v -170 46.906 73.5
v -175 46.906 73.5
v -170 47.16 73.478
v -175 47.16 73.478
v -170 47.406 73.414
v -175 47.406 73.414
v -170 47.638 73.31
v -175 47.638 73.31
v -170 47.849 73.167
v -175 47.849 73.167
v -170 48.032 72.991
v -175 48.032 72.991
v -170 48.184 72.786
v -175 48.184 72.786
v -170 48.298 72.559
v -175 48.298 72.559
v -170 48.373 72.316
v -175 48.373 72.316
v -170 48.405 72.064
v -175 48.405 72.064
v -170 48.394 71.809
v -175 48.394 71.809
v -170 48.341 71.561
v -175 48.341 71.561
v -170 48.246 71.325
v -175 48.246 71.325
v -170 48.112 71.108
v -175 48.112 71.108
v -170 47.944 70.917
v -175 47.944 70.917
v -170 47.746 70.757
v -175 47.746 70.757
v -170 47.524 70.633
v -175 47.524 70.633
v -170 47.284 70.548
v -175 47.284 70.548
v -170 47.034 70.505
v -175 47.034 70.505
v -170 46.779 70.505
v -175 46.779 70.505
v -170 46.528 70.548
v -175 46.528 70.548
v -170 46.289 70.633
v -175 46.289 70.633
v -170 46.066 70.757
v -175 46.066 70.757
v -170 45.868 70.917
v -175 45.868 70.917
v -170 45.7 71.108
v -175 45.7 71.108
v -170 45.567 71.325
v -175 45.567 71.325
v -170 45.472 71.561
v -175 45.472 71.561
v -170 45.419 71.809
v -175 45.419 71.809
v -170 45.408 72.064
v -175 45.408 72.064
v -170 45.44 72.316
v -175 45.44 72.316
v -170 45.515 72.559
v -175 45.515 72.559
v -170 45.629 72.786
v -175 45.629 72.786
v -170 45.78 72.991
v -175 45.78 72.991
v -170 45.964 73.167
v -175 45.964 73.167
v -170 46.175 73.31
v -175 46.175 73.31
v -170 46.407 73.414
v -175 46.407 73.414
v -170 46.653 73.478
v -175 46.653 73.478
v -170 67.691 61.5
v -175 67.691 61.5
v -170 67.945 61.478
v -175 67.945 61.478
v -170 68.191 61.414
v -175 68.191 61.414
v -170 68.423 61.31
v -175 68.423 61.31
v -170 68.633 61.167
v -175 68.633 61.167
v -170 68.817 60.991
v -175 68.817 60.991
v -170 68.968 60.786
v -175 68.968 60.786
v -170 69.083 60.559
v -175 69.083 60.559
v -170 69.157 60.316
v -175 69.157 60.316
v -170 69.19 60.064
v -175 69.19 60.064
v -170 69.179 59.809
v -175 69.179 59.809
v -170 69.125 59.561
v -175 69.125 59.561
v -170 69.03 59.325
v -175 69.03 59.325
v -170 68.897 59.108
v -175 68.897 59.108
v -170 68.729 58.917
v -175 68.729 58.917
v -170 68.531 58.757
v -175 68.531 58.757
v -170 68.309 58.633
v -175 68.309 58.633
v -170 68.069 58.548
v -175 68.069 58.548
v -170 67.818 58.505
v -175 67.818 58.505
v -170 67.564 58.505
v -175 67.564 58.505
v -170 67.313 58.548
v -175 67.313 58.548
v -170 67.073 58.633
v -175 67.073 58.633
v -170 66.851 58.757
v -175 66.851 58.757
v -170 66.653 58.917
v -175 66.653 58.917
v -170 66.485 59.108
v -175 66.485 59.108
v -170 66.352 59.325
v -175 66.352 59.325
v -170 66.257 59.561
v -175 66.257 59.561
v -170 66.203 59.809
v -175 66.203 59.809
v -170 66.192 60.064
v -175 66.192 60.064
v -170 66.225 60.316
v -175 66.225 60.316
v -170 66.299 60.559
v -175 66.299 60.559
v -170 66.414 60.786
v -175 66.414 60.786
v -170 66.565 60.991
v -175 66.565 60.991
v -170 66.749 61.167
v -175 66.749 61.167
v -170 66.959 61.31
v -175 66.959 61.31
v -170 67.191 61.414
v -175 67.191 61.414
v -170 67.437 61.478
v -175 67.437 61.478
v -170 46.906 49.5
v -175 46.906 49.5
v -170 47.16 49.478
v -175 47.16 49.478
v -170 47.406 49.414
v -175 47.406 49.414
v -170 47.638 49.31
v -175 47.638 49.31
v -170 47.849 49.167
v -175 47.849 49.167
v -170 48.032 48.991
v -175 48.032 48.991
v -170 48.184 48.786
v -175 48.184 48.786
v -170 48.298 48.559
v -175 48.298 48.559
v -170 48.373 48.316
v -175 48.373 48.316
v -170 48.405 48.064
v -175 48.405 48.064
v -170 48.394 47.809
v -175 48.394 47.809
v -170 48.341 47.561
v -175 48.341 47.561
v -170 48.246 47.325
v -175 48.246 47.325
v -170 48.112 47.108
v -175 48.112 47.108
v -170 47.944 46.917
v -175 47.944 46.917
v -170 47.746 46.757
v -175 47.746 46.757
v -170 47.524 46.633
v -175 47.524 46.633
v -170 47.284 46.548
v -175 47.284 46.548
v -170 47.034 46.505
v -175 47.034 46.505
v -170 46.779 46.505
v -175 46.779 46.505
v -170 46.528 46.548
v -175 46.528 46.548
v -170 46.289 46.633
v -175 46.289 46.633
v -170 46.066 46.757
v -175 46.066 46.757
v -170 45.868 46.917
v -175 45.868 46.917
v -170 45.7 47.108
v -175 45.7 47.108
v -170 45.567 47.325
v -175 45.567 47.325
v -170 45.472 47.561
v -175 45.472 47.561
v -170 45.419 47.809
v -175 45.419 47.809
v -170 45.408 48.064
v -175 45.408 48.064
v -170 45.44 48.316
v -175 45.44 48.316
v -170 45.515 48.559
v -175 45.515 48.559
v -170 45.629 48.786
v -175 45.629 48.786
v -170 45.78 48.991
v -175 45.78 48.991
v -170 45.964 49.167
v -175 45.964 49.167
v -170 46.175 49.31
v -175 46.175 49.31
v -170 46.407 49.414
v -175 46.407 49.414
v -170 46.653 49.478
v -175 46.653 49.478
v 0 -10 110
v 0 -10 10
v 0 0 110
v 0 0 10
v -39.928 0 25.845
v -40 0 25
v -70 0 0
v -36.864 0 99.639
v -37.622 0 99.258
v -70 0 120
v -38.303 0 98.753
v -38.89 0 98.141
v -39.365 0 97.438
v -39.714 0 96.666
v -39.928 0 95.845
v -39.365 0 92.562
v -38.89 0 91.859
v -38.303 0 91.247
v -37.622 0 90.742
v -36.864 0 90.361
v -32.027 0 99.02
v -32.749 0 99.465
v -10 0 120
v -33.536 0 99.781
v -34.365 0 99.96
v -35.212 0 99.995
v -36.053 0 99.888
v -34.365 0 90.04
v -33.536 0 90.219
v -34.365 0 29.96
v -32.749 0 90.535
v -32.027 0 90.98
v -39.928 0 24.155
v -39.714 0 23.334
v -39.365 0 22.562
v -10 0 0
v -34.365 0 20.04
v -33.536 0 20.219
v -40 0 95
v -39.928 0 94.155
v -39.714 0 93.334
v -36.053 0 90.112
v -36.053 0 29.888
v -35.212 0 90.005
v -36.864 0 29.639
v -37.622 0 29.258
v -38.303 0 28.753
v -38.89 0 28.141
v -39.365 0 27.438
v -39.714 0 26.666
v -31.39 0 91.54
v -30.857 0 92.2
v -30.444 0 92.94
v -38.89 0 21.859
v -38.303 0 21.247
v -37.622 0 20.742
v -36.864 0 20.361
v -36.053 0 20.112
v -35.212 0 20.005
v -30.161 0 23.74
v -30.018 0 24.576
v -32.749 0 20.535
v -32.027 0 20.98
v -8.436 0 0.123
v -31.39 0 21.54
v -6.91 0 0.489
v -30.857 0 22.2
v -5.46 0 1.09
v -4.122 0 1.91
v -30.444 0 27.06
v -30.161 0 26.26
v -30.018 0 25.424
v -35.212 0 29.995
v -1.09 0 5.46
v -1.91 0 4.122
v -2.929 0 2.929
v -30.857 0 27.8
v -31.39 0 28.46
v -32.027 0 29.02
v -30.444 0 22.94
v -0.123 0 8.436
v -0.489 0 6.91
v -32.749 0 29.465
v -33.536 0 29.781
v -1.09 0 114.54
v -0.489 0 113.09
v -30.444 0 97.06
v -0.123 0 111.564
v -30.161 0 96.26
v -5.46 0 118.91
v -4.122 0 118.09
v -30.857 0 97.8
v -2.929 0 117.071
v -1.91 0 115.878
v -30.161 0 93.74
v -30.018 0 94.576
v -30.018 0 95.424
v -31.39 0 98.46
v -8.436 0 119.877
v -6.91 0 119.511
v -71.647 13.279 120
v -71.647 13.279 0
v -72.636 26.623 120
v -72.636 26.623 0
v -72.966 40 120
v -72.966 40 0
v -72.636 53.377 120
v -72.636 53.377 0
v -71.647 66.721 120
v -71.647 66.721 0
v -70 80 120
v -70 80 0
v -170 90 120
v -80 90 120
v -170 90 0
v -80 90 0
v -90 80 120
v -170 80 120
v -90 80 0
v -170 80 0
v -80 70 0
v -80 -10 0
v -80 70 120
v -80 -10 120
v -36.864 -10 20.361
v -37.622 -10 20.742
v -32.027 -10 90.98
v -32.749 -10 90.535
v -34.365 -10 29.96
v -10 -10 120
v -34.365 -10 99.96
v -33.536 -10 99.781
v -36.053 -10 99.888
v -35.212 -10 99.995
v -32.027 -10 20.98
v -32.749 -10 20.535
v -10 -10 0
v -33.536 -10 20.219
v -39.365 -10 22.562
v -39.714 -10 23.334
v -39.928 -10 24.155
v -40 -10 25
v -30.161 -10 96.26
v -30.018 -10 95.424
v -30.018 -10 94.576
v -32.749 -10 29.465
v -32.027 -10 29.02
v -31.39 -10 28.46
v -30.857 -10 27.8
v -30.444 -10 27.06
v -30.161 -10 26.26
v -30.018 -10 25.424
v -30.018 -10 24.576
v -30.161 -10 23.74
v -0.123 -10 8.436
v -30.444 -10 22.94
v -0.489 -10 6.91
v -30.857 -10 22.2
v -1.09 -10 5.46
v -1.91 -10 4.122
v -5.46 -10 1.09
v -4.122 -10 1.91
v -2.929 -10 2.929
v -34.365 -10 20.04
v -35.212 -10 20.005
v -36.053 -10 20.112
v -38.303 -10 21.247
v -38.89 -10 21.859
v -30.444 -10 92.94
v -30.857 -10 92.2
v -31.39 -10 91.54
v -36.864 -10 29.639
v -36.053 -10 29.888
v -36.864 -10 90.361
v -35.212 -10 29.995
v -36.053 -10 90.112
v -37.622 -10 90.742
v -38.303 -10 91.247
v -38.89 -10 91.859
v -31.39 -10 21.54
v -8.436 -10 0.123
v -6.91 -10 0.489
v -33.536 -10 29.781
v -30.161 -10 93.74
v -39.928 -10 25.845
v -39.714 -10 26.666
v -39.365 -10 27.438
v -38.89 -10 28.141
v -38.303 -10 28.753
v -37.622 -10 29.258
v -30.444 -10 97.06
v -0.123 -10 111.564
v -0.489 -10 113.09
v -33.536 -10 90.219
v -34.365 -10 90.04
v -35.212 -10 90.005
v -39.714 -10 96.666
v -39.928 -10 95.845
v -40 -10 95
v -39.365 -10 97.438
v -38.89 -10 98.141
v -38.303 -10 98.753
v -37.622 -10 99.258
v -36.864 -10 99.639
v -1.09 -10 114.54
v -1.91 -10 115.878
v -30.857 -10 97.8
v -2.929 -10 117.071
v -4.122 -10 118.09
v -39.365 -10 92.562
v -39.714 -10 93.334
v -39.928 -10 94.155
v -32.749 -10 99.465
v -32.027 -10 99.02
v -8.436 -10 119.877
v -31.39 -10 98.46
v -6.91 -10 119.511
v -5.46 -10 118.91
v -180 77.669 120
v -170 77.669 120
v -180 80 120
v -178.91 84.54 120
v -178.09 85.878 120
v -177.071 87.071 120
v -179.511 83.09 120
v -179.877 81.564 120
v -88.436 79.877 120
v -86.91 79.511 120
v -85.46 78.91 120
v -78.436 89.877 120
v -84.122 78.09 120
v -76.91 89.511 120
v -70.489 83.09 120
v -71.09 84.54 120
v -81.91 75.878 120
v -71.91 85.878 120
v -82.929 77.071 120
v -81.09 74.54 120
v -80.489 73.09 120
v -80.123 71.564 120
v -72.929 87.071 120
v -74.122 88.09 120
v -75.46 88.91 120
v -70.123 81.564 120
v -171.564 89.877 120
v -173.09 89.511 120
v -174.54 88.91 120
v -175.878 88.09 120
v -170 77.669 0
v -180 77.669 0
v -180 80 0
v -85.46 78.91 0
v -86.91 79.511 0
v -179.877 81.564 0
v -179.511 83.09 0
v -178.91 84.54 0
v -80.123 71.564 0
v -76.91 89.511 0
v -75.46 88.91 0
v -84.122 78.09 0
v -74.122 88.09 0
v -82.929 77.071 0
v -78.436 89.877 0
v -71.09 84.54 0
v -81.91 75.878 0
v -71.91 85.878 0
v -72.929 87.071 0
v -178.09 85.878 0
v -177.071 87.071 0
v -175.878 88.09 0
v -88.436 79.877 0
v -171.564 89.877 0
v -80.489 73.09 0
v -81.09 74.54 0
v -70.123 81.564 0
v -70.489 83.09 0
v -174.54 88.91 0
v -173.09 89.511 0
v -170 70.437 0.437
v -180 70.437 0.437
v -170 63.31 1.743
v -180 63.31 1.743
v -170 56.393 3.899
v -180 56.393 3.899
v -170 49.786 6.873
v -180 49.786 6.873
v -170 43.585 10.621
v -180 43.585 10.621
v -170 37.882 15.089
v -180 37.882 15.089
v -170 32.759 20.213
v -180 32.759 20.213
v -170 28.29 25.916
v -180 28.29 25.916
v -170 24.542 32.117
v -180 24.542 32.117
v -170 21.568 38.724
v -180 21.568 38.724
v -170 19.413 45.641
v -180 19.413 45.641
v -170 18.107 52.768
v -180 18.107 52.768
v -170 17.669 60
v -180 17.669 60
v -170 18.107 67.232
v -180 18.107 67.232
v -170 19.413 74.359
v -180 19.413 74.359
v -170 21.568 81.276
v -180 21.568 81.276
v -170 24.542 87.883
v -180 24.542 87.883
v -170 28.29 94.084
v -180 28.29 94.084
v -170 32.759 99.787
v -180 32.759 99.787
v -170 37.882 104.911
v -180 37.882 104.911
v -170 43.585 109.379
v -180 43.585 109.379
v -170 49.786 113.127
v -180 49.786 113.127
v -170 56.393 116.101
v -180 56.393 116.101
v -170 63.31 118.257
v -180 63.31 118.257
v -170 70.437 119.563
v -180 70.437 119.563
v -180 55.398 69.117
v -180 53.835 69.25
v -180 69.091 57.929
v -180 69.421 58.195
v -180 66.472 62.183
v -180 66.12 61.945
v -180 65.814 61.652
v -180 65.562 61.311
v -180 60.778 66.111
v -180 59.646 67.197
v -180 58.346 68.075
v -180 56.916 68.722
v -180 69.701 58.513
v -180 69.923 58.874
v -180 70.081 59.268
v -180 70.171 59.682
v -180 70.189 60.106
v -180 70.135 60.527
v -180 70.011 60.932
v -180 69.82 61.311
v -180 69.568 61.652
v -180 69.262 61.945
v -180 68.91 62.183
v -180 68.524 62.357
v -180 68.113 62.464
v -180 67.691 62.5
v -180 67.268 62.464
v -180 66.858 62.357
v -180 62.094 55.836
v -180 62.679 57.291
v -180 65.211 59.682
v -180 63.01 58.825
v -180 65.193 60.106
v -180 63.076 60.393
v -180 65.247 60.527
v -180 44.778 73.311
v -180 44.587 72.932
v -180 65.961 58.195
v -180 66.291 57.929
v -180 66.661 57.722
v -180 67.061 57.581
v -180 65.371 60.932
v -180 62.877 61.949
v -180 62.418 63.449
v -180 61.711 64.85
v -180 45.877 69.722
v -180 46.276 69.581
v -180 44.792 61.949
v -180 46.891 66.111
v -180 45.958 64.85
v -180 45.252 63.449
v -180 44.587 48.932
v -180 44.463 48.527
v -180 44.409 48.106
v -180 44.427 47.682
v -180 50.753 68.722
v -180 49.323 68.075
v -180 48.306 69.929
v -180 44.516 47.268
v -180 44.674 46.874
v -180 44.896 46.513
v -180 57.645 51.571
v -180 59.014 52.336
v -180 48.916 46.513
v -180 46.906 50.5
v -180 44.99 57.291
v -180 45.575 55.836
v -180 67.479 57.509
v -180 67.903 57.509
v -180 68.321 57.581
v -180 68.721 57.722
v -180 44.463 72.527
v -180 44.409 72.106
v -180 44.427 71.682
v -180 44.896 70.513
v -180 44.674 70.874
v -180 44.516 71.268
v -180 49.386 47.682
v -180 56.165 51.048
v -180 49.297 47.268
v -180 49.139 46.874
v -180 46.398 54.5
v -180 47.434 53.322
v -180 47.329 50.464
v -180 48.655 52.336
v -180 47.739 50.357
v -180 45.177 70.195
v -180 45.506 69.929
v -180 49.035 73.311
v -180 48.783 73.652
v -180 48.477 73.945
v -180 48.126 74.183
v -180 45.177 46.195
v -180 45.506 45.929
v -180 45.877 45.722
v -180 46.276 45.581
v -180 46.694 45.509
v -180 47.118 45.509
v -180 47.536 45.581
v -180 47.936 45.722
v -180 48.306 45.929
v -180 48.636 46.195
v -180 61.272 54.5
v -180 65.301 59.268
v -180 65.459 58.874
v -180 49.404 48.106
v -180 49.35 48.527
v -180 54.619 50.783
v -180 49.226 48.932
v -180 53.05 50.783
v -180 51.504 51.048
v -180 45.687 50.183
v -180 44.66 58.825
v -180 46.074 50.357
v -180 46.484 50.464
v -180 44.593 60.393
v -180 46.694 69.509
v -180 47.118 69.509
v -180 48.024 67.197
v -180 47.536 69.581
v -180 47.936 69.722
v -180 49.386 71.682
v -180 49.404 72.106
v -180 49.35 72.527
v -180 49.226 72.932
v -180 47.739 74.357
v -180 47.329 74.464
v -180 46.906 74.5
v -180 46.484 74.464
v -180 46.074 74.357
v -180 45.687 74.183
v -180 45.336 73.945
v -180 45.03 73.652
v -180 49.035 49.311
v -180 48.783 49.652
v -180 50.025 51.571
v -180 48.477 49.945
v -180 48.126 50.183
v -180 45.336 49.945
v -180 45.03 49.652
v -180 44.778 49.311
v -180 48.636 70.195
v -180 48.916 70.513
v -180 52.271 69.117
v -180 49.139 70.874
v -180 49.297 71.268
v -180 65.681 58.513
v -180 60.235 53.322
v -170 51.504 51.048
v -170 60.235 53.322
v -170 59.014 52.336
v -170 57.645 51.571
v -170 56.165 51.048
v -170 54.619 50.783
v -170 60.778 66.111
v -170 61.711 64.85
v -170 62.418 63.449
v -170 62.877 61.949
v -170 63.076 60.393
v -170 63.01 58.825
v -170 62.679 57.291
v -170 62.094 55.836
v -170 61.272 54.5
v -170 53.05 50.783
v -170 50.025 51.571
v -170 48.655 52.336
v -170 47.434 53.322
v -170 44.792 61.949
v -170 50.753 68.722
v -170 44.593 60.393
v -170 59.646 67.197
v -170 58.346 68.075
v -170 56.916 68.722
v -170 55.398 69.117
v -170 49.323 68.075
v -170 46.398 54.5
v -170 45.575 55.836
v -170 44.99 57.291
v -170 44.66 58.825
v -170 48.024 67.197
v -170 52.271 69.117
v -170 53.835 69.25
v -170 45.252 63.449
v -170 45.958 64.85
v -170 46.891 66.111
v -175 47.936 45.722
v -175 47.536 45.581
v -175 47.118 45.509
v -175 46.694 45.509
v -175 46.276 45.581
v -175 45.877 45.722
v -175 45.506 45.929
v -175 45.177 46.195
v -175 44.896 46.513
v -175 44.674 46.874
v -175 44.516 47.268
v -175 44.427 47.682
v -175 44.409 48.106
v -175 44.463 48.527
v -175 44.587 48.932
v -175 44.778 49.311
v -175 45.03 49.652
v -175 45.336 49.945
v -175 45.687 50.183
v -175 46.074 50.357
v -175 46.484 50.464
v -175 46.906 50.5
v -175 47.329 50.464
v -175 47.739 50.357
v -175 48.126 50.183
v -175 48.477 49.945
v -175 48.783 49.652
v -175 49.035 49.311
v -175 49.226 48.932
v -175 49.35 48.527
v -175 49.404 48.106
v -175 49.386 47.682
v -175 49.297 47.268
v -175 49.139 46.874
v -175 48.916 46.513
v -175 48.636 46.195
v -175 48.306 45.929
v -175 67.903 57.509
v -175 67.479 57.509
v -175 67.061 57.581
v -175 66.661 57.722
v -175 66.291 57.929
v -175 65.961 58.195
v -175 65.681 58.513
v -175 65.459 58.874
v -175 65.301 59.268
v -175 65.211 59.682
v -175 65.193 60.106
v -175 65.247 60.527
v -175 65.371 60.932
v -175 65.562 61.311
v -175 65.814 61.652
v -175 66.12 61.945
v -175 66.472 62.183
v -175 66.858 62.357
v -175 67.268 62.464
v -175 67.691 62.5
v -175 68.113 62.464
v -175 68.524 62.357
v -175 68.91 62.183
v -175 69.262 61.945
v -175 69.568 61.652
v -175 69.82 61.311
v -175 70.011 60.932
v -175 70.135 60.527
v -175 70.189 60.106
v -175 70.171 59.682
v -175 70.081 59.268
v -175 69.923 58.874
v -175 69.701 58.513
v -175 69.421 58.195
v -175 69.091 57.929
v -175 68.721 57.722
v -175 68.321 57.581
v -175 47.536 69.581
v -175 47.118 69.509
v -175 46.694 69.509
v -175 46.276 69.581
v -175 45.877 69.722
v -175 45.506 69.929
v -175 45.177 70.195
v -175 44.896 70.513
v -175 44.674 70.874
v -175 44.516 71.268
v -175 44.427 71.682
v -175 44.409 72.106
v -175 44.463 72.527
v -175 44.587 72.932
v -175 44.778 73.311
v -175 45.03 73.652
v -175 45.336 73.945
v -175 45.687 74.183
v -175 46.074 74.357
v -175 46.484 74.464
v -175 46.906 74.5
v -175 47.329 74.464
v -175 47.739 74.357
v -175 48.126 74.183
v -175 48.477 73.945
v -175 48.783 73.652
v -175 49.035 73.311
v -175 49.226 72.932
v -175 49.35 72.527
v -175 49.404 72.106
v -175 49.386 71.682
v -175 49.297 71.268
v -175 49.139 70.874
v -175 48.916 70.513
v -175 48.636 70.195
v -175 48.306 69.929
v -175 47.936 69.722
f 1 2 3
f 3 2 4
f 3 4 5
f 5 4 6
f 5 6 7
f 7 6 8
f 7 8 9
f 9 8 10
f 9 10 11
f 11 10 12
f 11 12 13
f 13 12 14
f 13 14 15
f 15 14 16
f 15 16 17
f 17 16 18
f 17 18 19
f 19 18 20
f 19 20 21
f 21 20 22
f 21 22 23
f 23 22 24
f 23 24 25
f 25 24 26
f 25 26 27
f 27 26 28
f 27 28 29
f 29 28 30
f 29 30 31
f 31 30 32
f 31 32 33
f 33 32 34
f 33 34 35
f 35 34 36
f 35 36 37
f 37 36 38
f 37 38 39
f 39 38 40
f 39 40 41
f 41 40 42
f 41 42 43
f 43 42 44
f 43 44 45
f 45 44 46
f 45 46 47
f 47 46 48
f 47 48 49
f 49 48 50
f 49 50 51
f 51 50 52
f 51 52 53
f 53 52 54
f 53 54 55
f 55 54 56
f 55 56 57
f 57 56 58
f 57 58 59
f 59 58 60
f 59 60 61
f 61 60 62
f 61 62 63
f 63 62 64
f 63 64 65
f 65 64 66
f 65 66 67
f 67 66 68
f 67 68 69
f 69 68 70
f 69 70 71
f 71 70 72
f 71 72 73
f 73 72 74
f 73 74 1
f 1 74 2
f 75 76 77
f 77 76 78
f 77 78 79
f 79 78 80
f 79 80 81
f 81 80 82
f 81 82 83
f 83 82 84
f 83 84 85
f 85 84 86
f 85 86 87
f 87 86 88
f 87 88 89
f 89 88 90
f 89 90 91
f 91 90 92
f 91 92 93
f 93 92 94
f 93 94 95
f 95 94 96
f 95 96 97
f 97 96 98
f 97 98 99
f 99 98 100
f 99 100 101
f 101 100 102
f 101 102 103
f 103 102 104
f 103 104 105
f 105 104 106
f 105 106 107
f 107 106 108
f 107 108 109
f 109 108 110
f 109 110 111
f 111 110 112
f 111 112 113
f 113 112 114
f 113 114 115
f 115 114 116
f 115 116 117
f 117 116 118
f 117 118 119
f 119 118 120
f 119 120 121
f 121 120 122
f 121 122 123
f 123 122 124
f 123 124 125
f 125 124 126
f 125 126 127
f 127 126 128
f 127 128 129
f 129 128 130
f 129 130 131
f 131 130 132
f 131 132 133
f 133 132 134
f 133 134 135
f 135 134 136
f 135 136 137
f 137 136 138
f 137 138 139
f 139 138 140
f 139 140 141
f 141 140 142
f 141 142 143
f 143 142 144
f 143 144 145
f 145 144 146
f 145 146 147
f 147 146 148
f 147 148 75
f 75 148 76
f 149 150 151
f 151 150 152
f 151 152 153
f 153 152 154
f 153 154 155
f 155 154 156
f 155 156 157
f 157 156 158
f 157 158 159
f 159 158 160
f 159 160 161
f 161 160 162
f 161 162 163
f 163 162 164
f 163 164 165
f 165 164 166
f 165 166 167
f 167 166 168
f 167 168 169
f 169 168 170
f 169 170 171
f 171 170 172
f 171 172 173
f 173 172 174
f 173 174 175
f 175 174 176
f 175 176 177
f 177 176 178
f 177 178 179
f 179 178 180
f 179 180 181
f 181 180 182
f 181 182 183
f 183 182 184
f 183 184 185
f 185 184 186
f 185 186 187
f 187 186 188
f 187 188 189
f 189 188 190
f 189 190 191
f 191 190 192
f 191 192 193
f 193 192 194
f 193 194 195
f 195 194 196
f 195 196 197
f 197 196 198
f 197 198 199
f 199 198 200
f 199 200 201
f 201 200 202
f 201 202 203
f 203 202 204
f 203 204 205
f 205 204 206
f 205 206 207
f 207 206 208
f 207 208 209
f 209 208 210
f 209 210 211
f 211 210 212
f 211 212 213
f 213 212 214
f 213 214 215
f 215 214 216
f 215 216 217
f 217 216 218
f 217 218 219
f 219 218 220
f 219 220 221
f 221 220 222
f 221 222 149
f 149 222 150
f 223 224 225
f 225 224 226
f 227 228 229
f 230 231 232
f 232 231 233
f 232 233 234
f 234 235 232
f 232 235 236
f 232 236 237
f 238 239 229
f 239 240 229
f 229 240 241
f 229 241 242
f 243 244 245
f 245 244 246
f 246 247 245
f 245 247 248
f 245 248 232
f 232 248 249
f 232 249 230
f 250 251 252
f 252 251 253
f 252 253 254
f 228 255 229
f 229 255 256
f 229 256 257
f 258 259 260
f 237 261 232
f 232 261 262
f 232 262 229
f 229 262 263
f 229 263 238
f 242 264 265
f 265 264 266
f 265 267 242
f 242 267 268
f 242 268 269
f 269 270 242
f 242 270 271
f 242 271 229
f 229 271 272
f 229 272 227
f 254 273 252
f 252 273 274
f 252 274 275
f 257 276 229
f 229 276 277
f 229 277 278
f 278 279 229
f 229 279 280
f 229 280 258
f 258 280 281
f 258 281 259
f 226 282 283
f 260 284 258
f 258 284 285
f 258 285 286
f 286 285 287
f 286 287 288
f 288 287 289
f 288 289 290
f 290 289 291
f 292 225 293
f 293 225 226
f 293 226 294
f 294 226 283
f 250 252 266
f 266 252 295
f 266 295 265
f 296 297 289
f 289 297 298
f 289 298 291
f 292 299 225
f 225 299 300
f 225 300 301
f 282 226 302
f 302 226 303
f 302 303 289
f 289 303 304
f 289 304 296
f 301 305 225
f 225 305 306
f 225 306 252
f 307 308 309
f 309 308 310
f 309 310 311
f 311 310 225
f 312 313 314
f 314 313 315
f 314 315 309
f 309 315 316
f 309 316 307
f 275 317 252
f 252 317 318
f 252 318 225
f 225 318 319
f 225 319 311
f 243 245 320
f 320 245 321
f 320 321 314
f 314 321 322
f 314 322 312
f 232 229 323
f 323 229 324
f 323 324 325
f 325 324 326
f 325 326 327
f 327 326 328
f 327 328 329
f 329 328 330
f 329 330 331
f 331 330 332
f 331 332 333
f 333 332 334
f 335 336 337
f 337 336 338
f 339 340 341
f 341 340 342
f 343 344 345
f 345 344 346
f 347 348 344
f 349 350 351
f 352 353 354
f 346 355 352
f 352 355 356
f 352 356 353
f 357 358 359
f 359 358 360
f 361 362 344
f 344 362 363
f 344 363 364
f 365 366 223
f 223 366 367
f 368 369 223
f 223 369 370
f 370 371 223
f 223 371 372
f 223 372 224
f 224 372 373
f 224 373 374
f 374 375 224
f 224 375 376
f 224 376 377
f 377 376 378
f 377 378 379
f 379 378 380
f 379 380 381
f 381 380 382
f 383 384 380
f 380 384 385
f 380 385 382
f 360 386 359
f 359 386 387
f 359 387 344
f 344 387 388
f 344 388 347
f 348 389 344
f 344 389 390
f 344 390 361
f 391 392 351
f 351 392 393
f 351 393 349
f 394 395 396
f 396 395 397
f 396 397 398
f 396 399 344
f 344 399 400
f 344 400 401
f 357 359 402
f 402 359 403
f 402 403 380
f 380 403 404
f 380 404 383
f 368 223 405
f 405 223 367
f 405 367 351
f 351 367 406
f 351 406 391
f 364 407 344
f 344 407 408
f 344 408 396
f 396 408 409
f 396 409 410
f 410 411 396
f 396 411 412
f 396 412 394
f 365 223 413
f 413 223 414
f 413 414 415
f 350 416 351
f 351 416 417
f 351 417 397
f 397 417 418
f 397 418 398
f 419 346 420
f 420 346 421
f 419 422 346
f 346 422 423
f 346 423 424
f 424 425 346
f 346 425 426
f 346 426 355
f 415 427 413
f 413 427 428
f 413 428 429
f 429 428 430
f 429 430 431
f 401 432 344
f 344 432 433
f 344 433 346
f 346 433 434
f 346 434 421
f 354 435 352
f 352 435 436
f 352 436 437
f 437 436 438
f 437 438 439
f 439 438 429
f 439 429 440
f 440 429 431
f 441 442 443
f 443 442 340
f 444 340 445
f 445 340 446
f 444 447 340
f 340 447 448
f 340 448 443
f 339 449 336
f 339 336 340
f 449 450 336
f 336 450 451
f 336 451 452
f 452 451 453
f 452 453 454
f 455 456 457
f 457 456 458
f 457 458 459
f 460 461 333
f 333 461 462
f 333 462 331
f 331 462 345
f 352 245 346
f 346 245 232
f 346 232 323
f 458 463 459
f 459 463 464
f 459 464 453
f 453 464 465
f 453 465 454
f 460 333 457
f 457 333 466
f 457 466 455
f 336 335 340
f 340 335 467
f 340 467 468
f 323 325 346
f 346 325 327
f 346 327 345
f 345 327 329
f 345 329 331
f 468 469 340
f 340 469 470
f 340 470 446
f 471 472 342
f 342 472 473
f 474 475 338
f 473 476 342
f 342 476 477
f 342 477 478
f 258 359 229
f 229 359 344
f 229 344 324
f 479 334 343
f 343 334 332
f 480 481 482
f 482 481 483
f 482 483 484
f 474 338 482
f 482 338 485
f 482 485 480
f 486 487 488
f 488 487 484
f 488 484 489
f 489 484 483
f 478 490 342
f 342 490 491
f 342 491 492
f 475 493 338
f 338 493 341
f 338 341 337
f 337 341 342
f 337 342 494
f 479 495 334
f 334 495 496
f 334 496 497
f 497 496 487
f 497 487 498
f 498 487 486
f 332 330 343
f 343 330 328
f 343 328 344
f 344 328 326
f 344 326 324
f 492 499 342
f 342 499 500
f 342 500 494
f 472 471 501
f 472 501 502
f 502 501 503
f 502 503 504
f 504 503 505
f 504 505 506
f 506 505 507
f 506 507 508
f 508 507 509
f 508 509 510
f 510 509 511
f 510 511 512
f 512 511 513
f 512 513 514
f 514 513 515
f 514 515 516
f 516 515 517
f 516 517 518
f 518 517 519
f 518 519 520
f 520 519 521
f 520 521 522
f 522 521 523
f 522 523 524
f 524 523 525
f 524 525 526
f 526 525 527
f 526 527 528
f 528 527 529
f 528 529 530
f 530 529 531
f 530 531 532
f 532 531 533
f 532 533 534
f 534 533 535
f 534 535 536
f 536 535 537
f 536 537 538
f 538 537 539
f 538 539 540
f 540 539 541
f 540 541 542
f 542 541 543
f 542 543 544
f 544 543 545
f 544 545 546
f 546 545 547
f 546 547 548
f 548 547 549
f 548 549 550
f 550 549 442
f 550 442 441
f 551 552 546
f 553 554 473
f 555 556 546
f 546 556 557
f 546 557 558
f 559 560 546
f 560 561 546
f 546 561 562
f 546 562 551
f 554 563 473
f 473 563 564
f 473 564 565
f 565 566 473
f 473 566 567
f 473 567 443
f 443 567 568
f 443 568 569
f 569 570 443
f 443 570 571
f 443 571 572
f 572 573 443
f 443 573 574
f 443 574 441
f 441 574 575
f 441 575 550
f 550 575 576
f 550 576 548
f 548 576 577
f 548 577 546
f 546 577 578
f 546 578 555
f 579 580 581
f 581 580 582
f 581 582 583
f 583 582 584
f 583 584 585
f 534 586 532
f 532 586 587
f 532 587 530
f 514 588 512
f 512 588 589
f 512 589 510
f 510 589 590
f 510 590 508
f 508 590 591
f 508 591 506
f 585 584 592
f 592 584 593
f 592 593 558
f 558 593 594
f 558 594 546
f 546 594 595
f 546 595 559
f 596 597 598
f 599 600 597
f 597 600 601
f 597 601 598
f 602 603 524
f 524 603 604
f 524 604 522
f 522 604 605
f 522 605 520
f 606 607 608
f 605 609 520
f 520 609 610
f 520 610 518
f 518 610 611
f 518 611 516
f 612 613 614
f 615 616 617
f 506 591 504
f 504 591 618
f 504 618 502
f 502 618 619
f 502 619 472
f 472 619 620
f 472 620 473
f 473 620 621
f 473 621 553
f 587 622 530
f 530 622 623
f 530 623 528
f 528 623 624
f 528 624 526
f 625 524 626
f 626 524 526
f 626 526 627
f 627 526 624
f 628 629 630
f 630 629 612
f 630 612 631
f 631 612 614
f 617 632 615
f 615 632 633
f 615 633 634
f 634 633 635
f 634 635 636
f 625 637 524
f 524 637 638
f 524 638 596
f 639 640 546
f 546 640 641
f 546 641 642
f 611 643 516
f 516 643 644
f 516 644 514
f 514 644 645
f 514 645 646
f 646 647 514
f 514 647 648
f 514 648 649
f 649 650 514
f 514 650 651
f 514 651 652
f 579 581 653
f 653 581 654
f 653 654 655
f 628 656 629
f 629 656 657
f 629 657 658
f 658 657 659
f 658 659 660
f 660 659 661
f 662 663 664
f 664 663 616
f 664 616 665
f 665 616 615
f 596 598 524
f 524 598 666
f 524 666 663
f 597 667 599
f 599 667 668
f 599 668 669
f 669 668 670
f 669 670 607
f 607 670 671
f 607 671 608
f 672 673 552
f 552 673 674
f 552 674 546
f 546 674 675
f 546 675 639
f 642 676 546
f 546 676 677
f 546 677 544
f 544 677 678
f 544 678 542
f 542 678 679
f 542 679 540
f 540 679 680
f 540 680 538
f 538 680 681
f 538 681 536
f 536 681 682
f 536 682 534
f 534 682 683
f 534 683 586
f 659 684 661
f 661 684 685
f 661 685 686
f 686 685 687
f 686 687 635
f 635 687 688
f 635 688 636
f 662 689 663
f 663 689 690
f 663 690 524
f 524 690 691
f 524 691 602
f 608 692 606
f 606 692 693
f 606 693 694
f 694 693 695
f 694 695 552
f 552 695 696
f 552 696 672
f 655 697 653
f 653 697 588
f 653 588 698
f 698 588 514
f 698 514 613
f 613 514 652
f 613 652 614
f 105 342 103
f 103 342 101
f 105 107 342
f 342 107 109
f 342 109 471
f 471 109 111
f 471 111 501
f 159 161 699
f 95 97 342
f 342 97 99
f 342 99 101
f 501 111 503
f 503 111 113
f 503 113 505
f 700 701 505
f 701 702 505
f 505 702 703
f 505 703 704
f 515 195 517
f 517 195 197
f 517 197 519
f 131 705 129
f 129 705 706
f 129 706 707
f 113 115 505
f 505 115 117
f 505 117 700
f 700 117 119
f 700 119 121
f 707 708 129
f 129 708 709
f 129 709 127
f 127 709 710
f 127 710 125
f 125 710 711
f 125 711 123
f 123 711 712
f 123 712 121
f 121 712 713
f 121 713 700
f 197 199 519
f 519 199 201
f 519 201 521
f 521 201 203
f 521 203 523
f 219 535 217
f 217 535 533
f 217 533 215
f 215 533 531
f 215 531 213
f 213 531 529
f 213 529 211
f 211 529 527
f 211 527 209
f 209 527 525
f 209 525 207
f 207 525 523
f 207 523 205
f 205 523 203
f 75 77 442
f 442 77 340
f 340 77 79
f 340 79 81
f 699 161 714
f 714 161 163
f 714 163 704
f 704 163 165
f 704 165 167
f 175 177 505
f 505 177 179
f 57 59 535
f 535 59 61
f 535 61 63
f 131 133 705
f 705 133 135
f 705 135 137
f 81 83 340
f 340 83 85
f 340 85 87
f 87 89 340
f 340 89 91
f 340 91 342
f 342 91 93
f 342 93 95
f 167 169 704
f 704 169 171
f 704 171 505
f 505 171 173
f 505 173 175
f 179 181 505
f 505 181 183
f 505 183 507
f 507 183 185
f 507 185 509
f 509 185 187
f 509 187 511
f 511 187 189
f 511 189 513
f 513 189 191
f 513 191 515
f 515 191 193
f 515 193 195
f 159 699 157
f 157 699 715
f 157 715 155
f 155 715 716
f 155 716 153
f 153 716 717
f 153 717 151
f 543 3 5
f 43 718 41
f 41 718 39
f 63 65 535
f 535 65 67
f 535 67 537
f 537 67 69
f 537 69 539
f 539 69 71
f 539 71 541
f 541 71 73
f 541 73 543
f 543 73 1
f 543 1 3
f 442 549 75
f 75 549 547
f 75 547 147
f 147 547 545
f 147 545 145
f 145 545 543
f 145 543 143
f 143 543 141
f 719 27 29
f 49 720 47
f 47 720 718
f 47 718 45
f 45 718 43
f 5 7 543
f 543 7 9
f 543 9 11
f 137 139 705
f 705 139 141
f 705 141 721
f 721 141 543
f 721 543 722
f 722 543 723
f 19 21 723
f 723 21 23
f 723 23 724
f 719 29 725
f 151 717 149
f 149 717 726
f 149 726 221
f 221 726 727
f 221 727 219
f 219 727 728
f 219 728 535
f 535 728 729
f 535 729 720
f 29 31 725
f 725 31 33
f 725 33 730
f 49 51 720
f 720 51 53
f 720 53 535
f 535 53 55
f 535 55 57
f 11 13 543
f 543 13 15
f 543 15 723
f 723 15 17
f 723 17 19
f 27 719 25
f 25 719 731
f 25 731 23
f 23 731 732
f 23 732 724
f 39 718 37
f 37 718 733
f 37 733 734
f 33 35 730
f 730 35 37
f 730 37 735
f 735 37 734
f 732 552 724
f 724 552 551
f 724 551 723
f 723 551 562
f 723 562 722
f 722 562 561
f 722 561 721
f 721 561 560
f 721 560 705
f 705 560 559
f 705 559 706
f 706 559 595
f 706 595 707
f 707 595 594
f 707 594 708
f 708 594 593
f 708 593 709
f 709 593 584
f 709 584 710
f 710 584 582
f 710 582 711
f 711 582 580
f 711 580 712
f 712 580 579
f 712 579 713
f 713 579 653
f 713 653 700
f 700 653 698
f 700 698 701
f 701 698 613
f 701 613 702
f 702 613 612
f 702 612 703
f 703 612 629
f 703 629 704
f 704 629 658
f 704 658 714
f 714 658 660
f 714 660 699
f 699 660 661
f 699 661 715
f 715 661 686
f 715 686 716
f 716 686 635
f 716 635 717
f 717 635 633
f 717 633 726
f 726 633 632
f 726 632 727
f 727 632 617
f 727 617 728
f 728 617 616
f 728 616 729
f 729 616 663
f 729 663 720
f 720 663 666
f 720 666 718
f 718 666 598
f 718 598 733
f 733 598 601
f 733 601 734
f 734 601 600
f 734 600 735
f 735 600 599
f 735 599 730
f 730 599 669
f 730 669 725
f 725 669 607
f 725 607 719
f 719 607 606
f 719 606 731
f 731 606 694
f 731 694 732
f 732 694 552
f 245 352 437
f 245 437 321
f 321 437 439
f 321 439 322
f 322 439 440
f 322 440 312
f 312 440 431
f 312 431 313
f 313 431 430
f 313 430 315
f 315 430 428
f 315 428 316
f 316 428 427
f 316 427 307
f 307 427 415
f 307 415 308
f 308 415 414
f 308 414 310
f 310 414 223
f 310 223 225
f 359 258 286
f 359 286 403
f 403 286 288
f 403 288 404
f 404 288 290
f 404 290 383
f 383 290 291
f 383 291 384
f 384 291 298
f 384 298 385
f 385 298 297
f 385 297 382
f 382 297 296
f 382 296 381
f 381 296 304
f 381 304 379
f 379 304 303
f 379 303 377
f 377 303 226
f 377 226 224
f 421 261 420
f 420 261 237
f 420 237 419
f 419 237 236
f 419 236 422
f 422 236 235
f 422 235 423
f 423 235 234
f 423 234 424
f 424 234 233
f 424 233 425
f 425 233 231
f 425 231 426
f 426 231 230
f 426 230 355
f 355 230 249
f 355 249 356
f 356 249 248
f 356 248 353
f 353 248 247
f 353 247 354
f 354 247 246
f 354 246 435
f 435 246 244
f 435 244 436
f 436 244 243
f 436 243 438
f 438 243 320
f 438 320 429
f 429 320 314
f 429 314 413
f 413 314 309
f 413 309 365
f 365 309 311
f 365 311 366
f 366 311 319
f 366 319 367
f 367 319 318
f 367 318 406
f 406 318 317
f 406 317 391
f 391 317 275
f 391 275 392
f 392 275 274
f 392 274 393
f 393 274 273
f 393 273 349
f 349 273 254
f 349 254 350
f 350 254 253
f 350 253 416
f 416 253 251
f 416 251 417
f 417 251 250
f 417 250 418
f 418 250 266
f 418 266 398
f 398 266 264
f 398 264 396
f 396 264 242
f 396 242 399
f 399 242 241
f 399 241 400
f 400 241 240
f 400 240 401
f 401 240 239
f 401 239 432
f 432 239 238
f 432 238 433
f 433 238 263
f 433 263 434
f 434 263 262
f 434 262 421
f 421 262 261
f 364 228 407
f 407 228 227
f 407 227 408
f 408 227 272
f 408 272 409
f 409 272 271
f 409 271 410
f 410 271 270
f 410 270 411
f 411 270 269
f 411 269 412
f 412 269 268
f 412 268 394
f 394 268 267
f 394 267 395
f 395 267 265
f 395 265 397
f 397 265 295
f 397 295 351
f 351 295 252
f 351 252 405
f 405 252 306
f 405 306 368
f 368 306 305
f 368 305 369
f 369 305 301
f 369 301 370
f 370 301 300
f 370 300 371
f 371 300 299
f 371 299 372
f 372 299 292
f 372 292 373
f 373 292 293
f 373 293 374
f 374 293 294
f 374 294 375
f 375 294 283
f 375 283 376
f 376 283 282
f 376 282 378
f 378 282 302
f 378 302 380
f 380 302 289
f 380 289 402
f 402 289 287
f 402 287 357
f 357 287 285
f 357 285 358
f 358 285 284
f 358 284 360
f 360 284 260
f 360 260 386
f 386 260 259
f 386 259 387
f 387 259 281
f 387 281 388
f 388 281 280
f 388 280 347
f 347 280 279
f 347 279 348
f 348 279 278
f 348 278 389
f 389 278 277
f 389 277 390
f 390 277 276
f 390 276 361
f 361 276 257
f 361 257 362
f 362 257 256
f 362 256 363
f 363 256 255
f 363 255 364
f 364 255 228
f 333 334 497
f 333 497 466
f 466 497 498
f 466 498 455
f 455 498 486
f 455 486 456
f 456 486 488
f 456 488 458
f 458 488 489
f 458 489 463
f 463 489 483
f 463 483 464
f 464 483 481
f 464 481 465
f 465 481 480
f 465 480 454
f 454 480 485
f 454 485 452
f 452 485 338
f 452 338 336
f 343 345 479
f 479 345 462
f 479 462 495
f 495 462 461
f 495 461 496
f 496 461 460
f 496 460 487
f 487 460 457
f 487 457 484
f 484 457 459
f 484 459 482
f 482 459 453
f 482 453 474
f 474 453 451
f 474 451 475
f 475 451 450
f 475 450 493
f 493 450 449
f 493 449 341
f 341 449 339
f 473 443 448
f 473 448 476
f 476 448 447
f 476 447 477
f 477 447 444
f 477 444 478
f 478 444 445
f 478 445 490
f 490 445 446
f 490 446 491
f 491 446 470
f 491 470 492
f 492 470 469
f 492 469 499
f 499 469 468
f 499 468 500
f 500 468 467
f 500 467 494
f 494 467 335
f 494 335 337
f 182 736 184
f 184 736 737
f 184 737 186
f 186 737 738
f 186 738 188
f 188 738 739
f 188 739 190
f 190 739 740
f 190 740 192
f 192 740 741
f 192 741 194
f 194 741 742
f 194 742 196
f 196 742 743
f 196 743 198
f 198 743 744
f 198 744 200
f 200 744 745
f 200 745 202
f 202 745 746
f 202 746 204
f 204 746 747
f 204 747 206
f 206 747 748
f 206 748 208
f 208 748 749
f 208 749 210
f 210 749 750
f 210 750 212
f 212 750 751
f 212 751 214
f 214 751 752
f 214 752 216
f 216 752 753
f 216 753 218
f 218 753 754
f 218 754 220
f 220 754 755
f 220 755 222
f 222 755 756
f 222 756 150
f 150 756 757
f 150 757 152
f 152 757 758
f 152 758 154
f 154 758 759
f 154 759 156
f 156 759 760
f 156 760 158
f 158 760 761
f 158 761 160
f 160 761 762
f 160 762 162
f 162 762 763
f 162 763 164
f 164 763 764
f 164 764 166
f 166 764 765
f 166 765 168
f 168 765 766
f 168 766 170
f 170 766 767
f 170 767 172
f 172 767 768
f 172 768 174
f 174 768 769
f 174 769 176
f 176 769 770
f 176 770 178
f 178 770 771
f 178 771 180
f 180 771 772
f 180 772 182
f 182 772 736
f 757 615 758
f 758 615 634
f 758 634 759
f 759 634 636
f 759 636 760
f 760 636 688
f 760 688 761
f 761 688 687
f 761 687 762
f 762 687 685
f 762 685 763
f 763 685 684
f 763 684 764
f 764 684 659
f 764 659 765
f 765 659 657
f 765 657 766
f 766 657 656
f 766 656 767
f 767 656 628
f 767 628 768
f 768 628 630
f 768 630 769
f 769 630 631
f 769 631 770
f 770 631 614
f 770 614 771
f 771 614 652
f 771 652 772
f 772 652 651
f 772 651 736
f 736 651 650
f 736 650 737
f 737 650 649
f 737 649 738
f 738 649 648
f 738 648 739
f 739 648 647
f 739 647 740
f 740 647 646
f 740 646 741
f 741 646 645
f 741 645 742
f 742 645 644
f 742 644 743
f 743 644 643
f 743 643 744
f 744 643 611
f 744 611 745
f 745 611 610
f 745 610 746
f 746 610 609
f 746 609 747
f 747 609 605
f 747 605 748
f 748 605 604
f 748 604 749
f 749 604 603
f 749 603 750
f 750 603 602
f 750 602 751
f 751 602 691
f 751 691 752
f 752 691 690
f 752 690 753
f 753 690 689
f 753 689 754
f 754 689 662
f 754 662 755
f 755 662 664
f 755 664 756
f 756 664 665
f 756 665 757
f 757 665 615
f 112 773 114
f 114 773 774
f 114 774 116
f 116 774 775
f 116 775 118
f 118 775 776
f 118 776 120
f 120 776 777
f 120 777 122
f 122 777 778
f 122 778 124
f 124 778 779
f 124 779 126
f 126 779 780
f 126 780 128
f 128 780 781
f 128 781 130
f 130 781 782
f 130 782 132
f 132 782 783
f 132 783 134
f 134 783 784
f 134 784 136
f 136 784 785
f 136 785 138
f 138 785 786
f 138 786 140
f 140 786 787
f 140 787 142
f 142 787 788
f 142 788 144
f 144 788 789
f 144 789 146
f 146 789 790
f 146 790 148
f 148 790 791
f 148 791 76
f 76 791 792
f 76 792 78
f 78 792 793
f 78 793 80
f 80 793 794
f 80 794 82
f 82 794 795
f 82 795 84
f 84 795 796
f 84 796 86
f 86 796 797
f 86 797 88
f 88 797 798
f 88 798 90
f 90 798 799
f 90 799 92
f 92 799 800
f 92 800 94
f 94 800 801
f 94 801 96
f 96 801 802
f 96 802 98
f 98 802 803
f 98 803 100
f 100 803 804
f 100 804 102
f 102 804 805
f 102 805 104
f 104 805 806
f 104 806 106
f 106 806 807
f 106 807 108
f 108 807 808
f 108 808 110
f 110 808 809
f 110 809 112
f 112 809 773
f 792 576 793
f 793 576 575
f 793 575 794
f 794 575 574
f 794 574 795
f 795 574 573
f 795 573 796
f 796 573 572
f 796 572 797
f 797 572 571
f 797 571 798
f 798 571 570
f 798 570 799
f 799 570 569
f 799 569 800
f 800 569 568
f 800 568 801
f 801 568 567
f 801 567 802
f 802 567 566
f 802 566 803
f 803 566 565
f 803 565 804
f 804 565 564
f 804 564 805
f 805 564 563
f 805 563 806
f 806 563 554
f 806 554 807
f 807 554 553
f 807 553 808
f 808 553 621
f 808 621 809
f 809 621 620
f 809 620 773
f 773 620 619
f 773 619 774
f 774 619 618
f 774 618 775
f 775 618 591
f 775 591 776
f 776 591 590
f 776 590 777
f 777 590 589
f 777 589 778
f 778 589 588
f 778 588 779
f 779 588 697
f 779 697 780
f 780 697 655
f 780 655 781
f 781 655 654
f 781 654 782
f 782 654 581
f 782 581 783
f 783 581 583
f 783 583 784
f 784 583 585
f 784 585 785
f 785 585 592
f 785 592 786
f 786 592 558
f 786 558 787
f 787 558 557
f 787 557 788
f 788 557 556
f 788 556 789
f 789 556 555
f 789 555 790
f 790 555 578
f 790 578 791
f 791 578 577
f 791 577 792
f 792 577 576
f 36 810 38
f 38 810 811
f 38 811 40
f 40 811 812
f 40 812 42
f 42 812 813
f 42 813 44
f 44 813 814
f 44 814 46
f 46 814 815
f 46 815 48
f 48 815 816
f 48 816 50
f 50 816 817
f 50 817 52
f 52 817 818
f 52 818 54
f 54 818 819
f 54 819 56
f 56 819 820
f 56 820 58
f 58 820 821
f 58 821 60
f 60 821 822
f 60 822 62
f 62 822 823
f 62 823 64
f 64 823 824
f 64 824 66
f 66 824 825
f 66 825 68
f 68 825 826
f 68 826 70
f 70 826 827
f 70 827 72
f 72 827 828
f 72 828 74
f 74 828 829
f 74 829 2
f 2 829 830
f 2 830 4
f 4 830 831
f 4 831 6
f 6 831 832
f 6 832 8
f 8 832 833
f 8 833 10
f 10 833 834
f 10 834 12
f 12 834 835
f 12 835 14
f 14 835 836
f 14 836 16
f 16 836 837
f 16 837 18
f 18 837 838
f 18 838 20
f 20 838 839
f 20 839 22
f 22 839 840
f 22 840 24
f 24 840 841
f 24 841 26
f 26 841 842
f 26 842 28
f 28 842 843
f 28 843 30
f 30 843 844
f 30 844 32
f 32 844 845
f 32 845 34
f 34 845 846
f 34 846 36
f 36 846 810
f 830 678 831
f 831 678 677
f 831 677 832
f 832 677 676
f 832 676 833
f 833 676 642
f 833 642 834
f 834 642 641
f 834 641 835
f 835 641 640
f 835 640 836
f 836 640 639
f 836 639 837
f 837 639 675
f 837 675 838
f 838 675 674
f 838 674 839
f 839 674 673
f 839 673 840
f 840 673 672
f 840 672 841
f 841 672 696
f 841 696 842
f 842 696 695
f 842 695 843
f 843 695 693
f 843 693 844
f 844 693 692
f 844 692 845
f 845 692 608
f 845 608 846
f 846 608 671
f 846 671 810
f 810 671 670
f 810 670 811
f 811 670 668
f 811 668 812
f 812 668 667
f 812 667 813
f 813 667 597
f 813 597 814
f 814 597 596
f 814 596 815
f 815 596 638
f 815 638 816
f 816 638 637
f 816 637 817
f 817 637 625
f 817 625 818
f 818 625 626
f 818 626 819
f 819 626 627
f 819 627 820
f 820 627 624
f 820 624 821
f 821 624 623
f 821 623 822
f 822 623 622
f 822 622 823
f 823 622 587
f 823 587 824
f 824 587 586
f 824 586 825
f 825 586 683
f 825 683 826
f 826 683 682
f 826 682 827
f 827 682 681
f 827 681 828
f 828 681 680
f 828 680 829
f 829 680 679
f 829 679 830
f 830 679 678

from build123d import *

# Parameters (mm, degrees)
BOSS_EXTRUDE1_DEPTH = 120
BOSS_EXTRUDE2_DEPTH = 10
SKETCH3_R           = 9.25
SKETCH3_R_2         = 1.5
CUT_EXTRUDE1_DEPTH  = 10
FILLET1_R           = 10
SKETCH4_R           = 5
CUT_EXTRUDE2_DEPTH  = 20
FILLET2_R           = 10
FILLET4_R           = 10
FILLET6_R           = 10
SKETCH5_R           = 2.5
CUT_EXTRUDE3_DEPTH  = 5


with BuildPart() as part:
    # Sketch1 → Boss-Extrude1 (new body)
    with BuildSketch(Plane.XY):
        with BuildLine():
            Line((0, 0), (-70, 0))
            ThreePointArc((-70, 0), (-72.966131028, 40), (-70, 80))
            Line((-70, 80), (-70, 90))
            Line((-70, 90), (-170, 90))
            Line((-170, 90), (-170, 80))
            Line((-170, 80), (-80, 80))
            Line((-80, 80), (-80, -10))
            Line((-80, -10), (0, -10))
            Line((0, -10), (0, 0))
        make_face()
    extrude(amount=BOSS_EXTRUDE1_DEPTH)

    # Sketch2 → Boss-Extrude2 (add)
    with BuildSketch(Plane.ZY.offset(170)):
        with BuildLine():
            Line((0, 80), (0, 77.669175799))
            ThreePointArc((0, 77.669175799), (60, 17.669175799), (120, 77.669175799))
            Line((120, 77.669175799), (120, 90))
            Line((120, 90), (0, 90))
            Line((0, 90), (0, 80))
        make_face()
    extrude(amount=BOSS_EXTRUDE2_DEPTH)

    # Sketch3 → Cut-Extrude1 (cut)
    with BuildSketch(Plane.ZY.offset(180)):
        with Locations((60, 53.8345879)):
            Circle(SKETCH3_R)
        with Locations((48, 46.906384669)):
            Circle(SKETCH3_R_2)
        with Locations((60, 67.69099436)):
            Circle(SKETCH3_R_2)
        with Locations((72, 46.906384669)):
            Circle(SKETCH3_R_2)
    extrude(amount=-CUT_EXTRUDE1_DEPTH, mode=Mode.SUBTRACT)

    # Fillet1
    fillet1_edges = [part.edges().sort_by_distance(p)[0] for p in [
        (0, -5, 0),
        (0, -5, 120),
    ]]
    fillet(fillet1_edges, radius=FILLET1_R)

    # Sketch4 → Cut-Extrude2 (cut)
    with BuildSketch(Plane(origin=(0, 0, 0), x_dir=(1, 0, 0), z_dir=(0, 1, 0))):
        with Locations(Location((-35, -25, 0), (0, 0, 180))):
            Circle(SKETCH4_R)
        with Locations(Location((-35, -95, 0), (0, 0, 180))):
            Circle(SKETCH4_R)
    extrude(amount=-CUT_EXTRUDE2_DEPTH, mode=Mode.SUBTRACT)

    # Fillet2
    fillet2_edges = [part.edges().sort_by_distance(p)[0] for p in [
        (-70, 90, 60),
    ]]
    fillet(fillet2_edges, radius=FILLET2_R - 0.0001)  # a hair under: the kernel refuses the full size

    # Fillet4
    fillet4_edges = [part.edges().sort_by_distance(p)[0] for p in [
        (-80, 80, 60),
    ]]
    fillet(fillet4_edges, radius=FILLET4_R)

    # Fillet6
    fillet6_edges = [part.edges().sort_by_distance(p)[0] for p in [
        (-180, 90, 60),
    ]]
    fillet(fillet6_edges, radius=FILLET6_R)

    # Sketch5 → Cut-Extrude3 (cut)
    with BuildSketch(Plane.ZY.offset(180)):
        with Locations((72, 46.906384669)):
            Circle(SKETCH5_R)
        with Locations((60, 67.69099436)):
            Circle(SKETCH5_R)
        with Locations((48, 46.906384669)):
            Circle(SKETCH5_R)
    extrude(amount=-CUT_EXTRUDE3_DEPTH, mode=Mode.SUBTRACT)


solid = part.part
